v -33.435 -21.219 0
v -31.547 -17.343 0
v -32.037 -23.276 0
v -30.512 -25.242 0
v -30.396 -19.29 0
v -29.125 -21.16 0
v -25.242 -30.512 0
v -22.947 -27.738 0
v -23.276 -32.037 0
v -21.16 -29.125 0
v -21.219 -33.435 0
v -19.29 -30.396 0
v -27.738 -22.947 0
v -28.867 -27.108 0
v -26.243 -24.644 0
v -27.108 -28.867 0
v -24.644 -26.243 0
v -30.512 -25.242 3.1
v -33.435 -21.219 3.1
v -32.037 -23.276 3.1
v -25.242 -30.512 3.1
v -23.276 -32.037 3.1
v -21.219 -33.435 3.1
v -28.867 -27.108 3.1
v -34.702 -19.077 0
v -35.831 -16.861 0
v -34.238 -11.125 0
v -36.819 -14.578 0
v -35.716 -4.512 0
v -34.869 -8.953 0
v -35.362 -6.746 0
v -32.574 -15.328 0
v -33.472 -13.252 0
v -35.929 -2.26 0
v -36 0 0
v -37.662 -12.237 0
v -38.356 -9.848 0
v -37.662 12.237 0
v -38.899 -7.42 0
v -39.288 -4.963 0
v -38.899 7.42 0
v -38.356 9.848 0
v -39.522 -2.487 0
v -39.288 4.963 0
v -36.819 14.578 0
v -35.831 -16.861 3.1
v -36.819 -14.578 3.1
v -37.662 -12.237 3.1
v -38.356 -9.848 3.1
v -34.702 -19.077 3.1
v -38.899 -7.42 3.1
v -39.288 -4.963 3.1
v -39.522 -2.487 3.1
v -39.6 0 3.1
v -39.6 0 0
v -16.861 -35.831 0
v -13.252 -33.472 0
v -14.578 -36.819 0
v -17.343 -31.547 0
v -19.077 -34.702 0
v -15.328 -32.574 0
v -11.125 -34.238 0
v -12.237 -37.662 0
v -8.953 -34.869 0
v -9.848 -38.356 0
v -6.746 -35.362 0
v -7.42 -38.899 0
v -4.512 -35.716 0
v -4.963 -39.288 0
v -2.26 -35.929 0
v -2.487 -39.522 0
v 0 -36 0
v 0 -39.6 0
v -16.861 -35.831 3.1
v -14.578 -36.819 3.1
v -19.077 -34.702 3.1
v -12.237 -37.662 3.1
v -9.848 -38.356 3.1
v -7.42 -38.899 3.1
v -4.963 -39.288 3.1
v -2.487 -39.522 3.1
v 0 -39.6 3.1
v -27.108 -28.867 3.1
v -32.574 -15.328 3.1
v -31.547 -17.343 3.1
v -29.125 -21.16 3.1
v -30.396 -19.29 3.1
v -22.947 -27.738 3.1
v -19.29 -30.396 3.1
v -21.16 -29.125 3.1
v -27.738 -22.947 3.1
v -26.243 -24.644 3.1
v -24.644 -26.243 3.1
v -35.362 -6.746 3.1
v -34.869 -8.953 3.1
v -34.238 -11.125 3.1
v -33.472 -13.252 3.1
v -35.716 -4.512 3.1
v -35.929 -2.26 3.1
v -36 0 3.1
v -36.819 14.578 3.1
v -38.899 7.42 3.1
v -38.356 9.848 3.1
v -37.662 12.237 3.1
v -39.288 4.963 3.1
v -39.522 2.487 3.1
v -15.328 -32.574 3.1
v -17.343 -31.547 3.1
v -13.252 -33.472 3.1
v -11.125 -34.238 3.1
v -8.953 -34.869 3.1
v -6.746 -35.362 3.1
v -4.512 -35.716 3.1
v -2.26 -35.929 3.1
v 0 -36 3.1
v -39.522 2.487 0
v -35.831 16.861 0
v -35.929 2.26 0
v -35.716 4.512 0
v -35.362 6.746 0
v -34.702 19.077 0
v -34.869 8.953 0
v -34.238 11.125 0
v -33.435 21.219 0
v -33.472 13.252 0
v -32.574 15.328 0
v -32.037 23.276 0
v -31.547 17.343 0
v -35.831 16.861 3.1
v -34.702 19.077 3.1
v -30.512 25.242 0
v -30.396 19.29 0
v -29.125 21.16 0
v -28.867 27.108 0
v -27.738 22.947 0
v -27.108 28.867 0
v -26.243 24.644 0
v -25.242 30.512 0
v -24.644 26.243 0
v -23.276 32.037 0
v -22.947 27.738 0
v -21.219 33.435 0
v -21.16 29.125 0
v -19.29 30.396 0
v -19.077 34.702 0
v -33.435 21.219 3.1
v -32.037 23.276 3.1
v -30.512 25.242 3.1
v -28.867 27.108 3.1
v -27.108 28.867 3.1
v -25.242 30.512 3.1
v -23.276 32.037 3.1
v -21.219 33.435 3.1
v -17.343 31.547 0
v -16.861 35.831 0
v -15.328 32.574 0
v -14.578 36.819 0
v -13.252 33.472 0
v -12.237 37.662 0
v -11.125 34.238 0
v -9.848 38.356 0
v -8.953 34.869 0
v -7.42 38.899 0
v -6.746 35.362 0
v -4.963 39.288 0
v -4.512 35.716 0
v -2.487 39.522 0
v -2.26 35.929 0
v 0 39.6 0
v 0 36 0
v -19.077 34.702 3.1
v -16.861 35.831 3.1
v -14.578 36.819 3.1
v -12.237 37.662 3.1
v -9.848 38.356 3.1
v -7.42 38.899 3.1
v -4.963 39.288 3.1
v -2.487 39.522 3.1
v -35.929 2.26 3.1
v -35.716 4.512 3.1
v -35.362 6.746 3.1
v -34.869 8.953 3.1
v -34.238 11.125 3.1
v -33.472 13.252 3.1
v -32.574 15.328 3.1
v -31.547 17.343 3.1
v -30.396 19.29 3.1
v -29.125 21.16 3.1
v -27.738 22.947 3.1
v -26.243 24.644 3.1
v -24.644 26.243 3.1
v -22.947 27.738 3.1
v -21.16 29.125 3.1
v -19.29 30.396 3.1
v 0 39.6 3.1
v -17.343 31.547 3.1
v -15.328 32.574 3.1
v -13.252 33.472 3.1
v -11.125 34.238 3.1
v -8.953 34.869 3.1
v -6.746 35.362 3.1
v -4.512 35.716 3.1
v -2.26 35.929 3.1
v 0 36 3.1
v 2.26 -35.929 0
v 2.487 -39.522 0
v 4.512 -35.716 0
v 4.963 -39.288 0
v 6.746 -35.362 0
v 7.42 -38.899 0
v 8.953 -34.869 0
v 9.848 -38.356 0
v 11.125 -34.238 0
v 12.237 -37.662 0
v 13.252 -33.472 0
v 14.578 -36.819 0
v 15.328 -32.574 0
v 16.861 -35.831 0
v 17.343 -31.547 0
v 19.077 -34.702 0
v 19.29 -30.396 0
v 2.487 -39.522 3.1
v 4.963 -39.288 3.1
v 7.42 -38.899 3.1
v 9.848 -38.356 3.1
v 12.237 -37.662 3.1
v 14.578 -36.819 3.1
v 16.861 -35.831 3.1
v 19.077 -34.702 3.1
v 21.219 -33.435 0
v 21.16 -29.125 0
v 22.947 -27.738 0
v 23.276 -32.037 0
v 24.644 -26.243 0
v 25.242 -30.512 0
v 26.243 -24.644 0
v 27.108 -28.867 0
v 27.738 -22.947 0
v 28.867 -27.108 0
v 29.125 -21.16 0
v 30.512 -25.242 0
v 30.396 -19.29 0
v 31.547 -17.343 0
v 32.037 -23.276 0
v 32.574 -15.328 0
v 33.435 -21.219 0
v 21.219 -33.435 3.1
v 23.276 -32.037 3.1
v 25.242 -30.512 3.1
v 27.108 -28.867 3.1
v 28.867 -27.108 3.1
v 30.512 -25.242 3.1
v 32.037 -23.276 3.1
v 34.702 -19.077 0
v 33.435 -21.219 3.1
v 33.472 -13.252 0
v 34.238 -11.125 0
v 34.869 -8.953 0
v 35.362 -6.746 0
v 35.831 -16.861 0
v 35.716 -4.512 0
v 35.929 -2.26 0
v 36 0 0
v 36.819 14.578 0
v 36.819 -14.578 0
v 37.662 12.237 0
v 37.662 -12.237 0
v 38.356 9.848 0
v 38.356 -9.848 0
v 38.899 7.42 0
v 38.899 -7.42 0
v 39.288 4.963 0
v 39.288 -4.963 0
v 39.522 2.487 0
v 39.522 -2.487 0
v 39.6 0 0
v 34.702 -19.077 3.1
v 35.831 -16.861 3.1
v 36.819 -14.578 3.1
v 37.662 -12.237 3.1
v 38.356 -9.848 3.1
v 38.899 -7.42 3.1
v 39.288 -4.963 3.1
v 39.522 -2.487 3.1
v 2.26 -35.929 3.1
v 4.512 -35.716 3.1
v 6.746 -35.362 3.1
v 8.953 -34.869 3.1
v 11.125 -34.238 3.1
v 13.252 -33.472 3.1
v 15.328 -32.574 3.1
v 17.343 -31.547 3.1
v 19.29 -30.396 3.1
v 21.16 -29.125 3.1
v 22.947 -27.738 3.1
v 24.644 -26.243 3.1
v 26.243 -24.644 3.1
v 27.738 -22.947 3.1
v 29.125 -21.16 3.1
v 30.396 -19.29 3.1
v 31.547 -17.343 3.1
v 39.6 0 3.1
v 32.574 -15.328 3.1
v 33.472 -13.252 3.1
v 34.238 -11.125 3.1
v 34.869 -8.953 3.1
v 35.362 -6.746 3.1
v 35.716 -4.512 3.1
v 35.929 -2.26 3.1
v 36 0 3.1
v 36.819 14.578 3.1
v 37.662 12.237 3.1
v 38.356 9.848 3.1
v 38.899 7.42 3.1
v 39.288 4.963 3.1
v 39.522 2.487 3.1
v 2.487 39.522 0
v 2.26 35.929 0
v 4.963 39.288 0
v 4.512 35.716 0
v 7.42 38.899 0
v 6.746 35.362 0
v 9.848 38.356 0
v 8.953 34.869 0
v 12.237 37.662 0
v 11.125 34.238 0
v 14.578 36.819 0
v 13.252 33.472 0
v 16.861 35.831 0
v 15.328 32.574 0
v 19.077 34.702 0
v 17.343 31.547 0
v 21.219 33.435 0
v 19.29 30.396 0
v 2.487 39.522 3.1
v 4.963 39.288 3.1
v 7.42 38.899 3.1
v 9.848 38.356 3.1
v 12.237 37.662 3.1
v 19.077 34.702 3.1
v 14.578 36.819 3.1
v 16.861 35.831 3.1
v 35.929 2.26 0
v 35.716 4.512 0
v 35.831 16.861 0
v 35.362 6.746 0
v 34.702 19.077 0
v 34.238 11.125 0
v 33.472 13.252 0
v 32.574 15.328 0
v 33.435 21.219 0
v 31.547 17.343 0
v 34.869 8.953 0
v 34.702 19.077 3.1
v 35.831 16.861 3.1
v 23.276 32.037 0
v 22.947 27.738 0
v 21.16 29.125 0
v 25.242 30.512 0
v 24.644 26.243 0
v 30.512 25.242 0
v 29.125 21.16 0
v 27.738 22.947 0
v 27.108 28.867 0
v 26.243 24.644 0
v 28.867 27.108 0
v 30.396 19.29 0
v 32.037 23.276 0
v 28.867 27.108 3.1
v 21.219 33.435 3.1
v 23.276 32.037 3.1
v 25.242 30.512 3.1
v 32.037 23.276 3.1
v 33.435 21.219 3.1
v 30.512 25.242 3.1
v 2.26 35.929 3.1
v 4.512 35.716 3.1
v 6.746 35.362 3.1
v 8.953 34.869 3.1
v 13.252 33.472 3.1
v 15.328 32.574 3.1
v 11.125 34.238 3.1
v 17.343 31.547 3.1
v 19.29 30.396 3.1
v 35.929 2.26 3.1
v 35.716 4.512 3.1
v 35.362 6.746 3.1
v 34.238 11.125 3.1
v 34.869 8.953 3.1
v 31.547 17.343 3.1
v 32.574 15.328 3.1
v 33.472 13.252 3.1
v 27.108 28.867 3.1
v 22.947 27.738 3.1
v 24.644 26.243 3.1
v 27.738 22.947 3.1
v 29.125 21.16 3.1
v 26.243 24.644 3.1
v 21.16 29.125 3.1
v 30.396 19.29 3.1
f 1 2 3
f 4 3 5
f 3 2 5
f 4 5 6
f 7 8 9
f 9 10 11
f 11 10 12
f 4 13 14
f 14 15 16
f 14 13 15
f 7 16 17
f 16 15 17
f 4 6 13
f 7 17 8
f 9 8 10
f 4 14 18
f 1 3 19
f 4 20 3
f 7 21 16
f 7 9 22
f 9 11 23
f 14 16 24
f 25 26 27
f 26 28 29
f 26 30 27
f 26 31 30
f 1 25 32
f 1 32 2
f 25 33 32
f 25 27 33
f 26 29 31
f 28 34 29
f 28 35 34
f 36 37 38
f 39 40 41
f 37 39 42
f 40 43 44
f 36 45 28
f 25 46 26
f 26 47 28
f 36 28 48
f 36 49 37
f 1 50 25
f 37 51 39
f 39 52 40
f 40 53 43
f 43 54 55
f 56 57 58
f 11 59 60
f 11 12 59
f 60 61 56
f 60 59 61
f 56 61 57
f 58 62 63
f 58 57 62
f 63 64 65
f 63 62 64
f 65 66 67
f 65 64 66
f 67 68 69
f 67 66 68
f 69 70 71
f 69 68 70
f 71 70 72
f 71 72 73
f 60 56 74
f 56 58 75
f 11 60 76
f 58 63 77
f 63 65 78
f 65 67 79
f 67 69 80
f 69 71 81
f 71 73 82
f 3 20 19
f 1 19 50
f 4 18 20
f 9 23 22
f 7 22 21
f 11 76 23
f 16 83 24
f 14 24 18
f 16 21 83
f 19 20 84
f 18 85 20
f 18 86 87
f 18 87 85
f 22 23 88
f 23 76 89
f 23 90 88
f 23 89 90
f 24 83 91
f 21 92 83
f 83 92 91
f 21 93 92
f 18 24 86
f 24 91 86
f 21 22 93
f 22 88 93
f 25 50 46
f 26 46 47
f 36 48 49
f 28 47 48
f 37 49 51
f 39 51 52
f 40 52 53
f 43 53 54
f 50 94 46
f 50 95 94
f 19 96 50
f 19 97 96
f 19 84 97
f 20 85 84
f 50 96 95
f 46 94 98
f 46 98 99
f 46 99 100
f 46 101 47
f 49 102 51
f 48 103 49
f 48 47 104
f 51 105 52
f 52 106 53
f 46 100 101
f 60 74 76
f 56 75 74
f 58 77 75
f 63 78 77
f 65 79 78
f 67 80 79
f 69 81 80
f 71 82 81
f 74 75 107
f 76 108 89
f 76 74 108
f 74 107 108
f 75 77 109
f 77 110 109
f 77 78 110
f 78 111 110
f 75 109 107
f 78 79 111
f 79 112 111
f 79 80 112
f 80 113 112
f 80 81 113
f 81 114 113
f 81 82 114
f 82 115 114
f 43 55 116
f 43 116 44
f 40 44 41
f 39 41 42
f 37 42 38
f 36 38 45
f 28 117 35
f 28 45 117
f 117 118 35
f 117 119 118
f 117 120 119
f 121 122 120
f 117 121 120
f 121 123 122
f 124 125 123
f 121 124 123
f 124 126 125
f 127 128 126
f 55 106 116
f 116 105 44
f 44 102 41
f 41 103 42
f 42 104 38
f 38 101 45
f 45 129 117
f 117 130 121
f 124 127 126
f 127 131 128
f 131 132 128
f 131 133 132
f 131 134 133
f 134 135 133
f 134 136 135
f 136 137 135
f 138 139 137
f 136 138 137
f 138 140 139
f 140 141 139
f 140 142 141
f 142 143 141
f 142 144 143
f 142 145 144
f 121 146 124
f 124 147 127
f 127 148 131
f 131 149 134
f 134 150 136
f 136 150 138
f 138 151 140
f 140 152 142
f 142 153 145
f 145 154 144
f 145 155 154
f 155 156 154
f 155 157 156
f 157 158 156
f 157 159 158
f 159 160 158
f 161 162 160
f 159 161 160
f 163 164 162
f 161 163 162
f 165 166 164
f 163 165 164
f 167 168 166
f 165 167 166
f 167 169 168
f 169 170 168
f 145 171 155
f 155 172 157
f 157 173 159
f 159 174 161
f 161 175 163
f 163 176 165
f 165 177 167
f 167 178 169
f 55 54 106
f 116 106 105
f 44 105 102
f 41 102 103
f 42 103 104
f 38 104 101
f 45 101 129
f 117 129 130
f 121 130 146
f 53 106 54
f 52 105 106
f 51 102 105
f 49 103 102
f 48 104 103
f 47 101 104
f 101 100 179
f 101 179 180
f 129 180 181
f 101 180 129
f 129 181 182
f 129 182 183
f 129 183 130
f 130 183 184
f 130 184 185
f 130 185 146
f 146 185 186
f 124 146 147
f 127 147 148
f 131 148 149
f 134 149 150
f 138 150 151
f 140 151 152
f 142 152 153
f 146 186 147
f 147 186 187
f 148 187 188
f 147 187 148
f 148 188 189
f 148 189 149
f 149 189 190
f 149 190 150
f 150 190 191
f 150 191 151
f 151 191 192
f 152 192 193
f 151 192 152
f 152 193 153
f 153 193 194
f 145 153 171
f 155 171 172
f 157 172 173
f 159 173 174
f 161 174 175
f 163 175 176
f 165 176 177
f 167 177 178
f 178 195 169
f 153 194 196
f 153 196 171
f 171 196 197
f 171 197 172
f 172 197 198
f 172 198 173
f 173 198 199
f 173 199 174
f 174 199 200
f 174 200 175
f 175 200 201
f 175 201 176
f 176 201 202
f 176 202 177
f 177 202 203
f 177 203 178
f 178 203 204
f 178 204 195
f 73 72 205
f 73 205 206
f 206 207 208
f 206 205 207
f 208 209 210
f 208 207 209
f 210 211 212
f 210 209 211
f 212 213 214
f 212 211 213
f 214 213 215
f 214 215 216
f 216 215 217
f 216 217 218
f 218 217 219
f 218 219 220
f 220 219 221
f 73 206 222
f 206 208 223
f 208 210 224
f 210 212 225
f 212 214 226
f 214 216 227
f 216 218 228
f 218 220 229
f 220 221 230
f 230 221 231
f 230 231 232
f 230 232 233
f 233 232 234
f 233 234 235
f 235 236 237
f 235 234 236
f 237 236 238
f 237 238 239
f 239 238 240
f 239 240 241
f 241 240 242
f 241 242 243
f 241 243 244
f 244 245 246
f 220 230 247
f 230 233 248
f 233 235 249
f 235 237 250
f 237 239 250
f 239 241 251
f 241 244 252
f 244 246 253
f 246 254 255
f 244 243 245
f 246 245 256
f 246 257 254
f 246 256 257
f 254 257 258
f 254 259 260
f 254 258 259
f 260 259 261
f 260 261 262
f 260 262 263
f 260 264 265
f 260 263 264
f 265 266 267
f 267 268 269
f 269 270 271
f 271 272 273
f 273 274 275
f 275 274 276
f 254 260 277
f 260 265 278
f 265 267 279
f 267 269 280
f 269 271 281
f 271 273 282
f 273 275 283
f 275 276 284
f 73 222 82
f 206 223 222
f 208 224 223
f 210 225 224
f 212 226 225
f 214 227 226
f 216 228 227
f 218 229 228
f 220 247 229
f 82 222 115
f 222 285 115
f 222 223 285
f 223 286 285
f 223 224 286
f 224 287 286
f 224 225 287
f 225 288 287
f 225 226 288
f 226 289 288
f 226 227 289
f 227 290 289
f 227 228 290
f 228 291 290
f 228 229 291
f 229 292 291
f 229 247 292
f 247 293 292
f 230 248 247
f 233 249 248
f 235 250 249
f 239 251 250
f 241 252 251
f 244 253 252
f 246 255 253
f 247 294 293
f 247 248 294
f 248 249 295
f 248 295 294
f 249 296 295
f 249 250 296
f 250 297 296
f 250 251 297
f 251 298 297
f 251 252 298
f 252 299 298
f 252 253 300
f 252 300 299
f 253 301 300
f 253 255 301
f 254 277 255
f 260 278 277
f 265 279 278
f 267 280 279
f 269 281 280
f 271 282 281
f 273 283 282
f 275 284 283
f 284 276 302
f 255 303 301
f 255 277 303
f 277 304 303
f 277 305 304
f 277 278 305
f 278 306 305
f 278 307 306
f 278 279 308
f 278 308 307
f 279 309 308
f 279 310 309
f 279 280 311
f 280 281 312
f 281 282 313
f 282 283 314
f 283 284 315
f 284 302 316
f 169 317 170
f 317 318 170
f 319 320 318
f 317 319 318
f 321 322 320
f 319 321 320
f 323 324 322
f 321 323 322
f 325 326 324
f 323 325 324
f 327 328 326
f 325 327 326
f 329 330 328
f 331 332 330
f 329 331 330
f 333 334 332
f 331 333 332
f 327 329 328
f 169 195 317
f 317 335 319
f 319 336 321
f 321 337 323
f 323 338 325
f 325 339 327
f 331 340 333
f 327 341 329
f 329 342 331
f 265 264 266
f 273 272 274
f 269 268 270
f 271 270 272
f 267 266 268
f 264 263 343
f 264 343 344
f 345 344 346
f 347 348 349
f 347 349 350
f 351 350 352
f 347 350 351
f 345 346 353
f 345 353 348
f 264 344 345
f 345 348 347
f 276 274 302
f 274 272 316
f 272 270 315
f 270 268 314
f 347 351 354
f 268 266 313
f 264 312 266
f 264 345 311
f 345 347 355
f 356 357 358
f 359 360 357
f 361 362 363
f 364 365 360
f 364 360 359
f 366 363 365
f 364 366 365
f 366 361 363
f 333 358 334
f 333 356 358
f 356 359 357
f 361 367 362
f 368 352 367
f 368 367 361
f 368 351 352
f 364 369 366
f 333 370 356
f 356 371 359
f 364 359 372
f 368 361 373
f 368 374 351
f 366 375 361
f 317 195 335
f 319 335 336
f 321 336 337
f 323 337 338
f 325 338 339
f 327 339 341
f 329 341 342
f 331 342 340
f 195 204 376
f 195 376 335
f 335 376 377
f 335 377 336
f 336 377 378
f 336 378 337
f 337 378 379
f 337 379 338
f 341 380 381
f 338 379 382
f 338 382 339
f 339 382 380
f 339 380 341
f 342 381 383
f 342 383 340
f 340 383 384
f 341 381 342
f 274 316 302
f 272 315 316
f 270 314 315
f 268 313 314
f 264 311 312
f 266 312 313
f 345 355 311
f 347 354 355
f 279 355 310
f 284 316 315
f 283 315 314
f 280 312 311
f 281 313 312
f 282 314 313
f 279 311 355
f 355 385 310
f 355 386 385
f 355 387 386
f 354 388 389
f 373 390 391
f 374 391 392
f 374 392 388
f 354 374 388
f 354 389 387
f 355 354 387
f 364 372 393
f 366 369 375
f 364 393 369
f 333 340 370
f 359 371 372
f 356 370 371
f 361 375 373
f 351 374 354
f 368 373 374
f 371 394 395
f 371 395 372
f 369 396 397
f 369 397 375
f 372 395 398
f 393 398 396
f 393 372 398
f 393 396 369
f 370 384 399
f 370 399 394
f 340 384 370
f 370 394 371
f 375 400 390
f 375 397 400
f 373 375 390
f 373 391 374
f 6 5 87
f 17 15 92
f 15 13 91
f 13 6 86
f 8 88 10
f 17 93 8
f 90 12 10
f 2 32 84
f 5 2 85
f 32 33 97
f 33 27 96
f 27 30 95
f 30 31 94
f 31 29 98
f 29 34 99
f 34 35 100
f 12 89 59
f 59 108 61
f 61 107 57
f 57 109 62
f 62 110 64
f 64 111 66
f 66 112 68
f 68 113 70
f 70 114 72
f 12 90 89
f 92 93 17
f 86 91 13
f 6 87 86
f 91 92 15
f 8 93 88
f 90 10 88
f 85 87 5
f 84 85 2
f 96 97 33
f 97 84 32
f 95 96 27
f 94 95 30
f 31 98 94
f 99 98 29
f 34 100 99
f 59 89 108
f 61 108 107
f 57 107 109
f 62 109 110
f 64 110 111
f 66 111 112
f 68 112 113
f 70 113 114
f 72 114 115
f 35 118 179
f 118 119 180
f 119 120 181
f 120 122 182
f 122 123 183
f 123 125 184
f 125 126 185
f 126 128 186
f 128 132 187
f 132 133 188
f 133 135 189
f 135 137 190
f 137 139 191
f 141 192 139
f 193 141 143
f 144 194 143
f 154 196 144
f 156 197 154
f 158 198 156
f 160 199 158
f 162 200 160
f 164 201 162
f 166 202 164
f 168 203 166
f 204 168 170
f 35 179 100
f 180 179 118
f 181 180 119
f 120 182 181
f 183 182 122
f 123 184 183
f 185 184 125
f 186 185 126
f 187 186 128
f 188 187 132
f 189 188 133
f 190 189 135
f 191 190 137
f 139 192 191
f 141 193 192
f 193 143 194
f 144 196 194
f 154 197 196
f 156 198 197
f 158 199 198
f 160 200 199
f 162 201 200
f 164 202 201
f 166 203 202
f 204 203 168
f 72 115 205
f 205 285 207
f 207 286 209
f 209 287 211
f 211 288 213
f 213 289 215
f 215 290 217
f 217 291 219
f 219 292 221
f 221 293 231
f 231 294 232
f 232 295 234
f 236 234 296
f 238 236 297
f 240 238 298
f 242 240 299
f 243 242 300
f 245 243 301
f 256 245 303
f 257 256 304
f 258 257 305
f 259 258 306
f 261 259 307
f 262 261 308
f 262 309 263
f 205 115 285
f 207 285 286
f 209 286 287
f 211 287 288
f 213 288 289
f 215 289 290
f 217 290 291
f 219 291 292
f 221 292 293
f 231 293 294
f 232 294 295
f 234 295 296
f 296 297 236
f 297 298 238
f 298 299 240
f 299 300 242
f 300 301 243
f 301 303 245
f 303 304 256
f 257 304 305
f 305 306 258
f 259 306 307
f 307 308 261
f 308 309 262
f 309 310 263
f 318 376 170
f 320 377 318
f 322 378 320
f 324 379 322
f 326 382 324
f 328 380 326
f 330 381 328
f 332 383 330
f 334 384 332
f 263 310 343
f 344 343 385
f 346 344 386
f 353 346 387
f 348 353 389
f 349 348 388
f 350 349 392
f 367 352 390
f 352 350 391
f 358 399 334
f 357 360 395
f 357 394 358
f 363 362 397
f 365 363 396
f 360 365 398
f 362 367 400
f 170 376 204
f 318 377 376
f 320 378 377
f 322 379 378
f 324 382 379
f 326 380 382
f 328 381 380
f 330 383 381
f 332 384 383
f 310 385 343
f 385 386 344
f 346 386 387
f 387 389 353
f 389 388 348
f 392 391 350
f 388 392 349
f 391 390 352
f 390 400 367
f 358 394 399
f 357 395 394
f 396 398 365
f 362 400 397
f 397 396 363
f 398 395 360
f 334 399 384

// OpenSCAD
$fn=100;

module ring(
        h=1,
        od = 10,
        id = 5,
        de = 0.1
        )
{
    difference() {
        cylinder(h=h, r=od/2);
        translate([0, 0, -de])
            cylinder(h=h+2*de, r=id/2);
    }
}

ring(h = 3.1, od = 79.2, id = 72);
